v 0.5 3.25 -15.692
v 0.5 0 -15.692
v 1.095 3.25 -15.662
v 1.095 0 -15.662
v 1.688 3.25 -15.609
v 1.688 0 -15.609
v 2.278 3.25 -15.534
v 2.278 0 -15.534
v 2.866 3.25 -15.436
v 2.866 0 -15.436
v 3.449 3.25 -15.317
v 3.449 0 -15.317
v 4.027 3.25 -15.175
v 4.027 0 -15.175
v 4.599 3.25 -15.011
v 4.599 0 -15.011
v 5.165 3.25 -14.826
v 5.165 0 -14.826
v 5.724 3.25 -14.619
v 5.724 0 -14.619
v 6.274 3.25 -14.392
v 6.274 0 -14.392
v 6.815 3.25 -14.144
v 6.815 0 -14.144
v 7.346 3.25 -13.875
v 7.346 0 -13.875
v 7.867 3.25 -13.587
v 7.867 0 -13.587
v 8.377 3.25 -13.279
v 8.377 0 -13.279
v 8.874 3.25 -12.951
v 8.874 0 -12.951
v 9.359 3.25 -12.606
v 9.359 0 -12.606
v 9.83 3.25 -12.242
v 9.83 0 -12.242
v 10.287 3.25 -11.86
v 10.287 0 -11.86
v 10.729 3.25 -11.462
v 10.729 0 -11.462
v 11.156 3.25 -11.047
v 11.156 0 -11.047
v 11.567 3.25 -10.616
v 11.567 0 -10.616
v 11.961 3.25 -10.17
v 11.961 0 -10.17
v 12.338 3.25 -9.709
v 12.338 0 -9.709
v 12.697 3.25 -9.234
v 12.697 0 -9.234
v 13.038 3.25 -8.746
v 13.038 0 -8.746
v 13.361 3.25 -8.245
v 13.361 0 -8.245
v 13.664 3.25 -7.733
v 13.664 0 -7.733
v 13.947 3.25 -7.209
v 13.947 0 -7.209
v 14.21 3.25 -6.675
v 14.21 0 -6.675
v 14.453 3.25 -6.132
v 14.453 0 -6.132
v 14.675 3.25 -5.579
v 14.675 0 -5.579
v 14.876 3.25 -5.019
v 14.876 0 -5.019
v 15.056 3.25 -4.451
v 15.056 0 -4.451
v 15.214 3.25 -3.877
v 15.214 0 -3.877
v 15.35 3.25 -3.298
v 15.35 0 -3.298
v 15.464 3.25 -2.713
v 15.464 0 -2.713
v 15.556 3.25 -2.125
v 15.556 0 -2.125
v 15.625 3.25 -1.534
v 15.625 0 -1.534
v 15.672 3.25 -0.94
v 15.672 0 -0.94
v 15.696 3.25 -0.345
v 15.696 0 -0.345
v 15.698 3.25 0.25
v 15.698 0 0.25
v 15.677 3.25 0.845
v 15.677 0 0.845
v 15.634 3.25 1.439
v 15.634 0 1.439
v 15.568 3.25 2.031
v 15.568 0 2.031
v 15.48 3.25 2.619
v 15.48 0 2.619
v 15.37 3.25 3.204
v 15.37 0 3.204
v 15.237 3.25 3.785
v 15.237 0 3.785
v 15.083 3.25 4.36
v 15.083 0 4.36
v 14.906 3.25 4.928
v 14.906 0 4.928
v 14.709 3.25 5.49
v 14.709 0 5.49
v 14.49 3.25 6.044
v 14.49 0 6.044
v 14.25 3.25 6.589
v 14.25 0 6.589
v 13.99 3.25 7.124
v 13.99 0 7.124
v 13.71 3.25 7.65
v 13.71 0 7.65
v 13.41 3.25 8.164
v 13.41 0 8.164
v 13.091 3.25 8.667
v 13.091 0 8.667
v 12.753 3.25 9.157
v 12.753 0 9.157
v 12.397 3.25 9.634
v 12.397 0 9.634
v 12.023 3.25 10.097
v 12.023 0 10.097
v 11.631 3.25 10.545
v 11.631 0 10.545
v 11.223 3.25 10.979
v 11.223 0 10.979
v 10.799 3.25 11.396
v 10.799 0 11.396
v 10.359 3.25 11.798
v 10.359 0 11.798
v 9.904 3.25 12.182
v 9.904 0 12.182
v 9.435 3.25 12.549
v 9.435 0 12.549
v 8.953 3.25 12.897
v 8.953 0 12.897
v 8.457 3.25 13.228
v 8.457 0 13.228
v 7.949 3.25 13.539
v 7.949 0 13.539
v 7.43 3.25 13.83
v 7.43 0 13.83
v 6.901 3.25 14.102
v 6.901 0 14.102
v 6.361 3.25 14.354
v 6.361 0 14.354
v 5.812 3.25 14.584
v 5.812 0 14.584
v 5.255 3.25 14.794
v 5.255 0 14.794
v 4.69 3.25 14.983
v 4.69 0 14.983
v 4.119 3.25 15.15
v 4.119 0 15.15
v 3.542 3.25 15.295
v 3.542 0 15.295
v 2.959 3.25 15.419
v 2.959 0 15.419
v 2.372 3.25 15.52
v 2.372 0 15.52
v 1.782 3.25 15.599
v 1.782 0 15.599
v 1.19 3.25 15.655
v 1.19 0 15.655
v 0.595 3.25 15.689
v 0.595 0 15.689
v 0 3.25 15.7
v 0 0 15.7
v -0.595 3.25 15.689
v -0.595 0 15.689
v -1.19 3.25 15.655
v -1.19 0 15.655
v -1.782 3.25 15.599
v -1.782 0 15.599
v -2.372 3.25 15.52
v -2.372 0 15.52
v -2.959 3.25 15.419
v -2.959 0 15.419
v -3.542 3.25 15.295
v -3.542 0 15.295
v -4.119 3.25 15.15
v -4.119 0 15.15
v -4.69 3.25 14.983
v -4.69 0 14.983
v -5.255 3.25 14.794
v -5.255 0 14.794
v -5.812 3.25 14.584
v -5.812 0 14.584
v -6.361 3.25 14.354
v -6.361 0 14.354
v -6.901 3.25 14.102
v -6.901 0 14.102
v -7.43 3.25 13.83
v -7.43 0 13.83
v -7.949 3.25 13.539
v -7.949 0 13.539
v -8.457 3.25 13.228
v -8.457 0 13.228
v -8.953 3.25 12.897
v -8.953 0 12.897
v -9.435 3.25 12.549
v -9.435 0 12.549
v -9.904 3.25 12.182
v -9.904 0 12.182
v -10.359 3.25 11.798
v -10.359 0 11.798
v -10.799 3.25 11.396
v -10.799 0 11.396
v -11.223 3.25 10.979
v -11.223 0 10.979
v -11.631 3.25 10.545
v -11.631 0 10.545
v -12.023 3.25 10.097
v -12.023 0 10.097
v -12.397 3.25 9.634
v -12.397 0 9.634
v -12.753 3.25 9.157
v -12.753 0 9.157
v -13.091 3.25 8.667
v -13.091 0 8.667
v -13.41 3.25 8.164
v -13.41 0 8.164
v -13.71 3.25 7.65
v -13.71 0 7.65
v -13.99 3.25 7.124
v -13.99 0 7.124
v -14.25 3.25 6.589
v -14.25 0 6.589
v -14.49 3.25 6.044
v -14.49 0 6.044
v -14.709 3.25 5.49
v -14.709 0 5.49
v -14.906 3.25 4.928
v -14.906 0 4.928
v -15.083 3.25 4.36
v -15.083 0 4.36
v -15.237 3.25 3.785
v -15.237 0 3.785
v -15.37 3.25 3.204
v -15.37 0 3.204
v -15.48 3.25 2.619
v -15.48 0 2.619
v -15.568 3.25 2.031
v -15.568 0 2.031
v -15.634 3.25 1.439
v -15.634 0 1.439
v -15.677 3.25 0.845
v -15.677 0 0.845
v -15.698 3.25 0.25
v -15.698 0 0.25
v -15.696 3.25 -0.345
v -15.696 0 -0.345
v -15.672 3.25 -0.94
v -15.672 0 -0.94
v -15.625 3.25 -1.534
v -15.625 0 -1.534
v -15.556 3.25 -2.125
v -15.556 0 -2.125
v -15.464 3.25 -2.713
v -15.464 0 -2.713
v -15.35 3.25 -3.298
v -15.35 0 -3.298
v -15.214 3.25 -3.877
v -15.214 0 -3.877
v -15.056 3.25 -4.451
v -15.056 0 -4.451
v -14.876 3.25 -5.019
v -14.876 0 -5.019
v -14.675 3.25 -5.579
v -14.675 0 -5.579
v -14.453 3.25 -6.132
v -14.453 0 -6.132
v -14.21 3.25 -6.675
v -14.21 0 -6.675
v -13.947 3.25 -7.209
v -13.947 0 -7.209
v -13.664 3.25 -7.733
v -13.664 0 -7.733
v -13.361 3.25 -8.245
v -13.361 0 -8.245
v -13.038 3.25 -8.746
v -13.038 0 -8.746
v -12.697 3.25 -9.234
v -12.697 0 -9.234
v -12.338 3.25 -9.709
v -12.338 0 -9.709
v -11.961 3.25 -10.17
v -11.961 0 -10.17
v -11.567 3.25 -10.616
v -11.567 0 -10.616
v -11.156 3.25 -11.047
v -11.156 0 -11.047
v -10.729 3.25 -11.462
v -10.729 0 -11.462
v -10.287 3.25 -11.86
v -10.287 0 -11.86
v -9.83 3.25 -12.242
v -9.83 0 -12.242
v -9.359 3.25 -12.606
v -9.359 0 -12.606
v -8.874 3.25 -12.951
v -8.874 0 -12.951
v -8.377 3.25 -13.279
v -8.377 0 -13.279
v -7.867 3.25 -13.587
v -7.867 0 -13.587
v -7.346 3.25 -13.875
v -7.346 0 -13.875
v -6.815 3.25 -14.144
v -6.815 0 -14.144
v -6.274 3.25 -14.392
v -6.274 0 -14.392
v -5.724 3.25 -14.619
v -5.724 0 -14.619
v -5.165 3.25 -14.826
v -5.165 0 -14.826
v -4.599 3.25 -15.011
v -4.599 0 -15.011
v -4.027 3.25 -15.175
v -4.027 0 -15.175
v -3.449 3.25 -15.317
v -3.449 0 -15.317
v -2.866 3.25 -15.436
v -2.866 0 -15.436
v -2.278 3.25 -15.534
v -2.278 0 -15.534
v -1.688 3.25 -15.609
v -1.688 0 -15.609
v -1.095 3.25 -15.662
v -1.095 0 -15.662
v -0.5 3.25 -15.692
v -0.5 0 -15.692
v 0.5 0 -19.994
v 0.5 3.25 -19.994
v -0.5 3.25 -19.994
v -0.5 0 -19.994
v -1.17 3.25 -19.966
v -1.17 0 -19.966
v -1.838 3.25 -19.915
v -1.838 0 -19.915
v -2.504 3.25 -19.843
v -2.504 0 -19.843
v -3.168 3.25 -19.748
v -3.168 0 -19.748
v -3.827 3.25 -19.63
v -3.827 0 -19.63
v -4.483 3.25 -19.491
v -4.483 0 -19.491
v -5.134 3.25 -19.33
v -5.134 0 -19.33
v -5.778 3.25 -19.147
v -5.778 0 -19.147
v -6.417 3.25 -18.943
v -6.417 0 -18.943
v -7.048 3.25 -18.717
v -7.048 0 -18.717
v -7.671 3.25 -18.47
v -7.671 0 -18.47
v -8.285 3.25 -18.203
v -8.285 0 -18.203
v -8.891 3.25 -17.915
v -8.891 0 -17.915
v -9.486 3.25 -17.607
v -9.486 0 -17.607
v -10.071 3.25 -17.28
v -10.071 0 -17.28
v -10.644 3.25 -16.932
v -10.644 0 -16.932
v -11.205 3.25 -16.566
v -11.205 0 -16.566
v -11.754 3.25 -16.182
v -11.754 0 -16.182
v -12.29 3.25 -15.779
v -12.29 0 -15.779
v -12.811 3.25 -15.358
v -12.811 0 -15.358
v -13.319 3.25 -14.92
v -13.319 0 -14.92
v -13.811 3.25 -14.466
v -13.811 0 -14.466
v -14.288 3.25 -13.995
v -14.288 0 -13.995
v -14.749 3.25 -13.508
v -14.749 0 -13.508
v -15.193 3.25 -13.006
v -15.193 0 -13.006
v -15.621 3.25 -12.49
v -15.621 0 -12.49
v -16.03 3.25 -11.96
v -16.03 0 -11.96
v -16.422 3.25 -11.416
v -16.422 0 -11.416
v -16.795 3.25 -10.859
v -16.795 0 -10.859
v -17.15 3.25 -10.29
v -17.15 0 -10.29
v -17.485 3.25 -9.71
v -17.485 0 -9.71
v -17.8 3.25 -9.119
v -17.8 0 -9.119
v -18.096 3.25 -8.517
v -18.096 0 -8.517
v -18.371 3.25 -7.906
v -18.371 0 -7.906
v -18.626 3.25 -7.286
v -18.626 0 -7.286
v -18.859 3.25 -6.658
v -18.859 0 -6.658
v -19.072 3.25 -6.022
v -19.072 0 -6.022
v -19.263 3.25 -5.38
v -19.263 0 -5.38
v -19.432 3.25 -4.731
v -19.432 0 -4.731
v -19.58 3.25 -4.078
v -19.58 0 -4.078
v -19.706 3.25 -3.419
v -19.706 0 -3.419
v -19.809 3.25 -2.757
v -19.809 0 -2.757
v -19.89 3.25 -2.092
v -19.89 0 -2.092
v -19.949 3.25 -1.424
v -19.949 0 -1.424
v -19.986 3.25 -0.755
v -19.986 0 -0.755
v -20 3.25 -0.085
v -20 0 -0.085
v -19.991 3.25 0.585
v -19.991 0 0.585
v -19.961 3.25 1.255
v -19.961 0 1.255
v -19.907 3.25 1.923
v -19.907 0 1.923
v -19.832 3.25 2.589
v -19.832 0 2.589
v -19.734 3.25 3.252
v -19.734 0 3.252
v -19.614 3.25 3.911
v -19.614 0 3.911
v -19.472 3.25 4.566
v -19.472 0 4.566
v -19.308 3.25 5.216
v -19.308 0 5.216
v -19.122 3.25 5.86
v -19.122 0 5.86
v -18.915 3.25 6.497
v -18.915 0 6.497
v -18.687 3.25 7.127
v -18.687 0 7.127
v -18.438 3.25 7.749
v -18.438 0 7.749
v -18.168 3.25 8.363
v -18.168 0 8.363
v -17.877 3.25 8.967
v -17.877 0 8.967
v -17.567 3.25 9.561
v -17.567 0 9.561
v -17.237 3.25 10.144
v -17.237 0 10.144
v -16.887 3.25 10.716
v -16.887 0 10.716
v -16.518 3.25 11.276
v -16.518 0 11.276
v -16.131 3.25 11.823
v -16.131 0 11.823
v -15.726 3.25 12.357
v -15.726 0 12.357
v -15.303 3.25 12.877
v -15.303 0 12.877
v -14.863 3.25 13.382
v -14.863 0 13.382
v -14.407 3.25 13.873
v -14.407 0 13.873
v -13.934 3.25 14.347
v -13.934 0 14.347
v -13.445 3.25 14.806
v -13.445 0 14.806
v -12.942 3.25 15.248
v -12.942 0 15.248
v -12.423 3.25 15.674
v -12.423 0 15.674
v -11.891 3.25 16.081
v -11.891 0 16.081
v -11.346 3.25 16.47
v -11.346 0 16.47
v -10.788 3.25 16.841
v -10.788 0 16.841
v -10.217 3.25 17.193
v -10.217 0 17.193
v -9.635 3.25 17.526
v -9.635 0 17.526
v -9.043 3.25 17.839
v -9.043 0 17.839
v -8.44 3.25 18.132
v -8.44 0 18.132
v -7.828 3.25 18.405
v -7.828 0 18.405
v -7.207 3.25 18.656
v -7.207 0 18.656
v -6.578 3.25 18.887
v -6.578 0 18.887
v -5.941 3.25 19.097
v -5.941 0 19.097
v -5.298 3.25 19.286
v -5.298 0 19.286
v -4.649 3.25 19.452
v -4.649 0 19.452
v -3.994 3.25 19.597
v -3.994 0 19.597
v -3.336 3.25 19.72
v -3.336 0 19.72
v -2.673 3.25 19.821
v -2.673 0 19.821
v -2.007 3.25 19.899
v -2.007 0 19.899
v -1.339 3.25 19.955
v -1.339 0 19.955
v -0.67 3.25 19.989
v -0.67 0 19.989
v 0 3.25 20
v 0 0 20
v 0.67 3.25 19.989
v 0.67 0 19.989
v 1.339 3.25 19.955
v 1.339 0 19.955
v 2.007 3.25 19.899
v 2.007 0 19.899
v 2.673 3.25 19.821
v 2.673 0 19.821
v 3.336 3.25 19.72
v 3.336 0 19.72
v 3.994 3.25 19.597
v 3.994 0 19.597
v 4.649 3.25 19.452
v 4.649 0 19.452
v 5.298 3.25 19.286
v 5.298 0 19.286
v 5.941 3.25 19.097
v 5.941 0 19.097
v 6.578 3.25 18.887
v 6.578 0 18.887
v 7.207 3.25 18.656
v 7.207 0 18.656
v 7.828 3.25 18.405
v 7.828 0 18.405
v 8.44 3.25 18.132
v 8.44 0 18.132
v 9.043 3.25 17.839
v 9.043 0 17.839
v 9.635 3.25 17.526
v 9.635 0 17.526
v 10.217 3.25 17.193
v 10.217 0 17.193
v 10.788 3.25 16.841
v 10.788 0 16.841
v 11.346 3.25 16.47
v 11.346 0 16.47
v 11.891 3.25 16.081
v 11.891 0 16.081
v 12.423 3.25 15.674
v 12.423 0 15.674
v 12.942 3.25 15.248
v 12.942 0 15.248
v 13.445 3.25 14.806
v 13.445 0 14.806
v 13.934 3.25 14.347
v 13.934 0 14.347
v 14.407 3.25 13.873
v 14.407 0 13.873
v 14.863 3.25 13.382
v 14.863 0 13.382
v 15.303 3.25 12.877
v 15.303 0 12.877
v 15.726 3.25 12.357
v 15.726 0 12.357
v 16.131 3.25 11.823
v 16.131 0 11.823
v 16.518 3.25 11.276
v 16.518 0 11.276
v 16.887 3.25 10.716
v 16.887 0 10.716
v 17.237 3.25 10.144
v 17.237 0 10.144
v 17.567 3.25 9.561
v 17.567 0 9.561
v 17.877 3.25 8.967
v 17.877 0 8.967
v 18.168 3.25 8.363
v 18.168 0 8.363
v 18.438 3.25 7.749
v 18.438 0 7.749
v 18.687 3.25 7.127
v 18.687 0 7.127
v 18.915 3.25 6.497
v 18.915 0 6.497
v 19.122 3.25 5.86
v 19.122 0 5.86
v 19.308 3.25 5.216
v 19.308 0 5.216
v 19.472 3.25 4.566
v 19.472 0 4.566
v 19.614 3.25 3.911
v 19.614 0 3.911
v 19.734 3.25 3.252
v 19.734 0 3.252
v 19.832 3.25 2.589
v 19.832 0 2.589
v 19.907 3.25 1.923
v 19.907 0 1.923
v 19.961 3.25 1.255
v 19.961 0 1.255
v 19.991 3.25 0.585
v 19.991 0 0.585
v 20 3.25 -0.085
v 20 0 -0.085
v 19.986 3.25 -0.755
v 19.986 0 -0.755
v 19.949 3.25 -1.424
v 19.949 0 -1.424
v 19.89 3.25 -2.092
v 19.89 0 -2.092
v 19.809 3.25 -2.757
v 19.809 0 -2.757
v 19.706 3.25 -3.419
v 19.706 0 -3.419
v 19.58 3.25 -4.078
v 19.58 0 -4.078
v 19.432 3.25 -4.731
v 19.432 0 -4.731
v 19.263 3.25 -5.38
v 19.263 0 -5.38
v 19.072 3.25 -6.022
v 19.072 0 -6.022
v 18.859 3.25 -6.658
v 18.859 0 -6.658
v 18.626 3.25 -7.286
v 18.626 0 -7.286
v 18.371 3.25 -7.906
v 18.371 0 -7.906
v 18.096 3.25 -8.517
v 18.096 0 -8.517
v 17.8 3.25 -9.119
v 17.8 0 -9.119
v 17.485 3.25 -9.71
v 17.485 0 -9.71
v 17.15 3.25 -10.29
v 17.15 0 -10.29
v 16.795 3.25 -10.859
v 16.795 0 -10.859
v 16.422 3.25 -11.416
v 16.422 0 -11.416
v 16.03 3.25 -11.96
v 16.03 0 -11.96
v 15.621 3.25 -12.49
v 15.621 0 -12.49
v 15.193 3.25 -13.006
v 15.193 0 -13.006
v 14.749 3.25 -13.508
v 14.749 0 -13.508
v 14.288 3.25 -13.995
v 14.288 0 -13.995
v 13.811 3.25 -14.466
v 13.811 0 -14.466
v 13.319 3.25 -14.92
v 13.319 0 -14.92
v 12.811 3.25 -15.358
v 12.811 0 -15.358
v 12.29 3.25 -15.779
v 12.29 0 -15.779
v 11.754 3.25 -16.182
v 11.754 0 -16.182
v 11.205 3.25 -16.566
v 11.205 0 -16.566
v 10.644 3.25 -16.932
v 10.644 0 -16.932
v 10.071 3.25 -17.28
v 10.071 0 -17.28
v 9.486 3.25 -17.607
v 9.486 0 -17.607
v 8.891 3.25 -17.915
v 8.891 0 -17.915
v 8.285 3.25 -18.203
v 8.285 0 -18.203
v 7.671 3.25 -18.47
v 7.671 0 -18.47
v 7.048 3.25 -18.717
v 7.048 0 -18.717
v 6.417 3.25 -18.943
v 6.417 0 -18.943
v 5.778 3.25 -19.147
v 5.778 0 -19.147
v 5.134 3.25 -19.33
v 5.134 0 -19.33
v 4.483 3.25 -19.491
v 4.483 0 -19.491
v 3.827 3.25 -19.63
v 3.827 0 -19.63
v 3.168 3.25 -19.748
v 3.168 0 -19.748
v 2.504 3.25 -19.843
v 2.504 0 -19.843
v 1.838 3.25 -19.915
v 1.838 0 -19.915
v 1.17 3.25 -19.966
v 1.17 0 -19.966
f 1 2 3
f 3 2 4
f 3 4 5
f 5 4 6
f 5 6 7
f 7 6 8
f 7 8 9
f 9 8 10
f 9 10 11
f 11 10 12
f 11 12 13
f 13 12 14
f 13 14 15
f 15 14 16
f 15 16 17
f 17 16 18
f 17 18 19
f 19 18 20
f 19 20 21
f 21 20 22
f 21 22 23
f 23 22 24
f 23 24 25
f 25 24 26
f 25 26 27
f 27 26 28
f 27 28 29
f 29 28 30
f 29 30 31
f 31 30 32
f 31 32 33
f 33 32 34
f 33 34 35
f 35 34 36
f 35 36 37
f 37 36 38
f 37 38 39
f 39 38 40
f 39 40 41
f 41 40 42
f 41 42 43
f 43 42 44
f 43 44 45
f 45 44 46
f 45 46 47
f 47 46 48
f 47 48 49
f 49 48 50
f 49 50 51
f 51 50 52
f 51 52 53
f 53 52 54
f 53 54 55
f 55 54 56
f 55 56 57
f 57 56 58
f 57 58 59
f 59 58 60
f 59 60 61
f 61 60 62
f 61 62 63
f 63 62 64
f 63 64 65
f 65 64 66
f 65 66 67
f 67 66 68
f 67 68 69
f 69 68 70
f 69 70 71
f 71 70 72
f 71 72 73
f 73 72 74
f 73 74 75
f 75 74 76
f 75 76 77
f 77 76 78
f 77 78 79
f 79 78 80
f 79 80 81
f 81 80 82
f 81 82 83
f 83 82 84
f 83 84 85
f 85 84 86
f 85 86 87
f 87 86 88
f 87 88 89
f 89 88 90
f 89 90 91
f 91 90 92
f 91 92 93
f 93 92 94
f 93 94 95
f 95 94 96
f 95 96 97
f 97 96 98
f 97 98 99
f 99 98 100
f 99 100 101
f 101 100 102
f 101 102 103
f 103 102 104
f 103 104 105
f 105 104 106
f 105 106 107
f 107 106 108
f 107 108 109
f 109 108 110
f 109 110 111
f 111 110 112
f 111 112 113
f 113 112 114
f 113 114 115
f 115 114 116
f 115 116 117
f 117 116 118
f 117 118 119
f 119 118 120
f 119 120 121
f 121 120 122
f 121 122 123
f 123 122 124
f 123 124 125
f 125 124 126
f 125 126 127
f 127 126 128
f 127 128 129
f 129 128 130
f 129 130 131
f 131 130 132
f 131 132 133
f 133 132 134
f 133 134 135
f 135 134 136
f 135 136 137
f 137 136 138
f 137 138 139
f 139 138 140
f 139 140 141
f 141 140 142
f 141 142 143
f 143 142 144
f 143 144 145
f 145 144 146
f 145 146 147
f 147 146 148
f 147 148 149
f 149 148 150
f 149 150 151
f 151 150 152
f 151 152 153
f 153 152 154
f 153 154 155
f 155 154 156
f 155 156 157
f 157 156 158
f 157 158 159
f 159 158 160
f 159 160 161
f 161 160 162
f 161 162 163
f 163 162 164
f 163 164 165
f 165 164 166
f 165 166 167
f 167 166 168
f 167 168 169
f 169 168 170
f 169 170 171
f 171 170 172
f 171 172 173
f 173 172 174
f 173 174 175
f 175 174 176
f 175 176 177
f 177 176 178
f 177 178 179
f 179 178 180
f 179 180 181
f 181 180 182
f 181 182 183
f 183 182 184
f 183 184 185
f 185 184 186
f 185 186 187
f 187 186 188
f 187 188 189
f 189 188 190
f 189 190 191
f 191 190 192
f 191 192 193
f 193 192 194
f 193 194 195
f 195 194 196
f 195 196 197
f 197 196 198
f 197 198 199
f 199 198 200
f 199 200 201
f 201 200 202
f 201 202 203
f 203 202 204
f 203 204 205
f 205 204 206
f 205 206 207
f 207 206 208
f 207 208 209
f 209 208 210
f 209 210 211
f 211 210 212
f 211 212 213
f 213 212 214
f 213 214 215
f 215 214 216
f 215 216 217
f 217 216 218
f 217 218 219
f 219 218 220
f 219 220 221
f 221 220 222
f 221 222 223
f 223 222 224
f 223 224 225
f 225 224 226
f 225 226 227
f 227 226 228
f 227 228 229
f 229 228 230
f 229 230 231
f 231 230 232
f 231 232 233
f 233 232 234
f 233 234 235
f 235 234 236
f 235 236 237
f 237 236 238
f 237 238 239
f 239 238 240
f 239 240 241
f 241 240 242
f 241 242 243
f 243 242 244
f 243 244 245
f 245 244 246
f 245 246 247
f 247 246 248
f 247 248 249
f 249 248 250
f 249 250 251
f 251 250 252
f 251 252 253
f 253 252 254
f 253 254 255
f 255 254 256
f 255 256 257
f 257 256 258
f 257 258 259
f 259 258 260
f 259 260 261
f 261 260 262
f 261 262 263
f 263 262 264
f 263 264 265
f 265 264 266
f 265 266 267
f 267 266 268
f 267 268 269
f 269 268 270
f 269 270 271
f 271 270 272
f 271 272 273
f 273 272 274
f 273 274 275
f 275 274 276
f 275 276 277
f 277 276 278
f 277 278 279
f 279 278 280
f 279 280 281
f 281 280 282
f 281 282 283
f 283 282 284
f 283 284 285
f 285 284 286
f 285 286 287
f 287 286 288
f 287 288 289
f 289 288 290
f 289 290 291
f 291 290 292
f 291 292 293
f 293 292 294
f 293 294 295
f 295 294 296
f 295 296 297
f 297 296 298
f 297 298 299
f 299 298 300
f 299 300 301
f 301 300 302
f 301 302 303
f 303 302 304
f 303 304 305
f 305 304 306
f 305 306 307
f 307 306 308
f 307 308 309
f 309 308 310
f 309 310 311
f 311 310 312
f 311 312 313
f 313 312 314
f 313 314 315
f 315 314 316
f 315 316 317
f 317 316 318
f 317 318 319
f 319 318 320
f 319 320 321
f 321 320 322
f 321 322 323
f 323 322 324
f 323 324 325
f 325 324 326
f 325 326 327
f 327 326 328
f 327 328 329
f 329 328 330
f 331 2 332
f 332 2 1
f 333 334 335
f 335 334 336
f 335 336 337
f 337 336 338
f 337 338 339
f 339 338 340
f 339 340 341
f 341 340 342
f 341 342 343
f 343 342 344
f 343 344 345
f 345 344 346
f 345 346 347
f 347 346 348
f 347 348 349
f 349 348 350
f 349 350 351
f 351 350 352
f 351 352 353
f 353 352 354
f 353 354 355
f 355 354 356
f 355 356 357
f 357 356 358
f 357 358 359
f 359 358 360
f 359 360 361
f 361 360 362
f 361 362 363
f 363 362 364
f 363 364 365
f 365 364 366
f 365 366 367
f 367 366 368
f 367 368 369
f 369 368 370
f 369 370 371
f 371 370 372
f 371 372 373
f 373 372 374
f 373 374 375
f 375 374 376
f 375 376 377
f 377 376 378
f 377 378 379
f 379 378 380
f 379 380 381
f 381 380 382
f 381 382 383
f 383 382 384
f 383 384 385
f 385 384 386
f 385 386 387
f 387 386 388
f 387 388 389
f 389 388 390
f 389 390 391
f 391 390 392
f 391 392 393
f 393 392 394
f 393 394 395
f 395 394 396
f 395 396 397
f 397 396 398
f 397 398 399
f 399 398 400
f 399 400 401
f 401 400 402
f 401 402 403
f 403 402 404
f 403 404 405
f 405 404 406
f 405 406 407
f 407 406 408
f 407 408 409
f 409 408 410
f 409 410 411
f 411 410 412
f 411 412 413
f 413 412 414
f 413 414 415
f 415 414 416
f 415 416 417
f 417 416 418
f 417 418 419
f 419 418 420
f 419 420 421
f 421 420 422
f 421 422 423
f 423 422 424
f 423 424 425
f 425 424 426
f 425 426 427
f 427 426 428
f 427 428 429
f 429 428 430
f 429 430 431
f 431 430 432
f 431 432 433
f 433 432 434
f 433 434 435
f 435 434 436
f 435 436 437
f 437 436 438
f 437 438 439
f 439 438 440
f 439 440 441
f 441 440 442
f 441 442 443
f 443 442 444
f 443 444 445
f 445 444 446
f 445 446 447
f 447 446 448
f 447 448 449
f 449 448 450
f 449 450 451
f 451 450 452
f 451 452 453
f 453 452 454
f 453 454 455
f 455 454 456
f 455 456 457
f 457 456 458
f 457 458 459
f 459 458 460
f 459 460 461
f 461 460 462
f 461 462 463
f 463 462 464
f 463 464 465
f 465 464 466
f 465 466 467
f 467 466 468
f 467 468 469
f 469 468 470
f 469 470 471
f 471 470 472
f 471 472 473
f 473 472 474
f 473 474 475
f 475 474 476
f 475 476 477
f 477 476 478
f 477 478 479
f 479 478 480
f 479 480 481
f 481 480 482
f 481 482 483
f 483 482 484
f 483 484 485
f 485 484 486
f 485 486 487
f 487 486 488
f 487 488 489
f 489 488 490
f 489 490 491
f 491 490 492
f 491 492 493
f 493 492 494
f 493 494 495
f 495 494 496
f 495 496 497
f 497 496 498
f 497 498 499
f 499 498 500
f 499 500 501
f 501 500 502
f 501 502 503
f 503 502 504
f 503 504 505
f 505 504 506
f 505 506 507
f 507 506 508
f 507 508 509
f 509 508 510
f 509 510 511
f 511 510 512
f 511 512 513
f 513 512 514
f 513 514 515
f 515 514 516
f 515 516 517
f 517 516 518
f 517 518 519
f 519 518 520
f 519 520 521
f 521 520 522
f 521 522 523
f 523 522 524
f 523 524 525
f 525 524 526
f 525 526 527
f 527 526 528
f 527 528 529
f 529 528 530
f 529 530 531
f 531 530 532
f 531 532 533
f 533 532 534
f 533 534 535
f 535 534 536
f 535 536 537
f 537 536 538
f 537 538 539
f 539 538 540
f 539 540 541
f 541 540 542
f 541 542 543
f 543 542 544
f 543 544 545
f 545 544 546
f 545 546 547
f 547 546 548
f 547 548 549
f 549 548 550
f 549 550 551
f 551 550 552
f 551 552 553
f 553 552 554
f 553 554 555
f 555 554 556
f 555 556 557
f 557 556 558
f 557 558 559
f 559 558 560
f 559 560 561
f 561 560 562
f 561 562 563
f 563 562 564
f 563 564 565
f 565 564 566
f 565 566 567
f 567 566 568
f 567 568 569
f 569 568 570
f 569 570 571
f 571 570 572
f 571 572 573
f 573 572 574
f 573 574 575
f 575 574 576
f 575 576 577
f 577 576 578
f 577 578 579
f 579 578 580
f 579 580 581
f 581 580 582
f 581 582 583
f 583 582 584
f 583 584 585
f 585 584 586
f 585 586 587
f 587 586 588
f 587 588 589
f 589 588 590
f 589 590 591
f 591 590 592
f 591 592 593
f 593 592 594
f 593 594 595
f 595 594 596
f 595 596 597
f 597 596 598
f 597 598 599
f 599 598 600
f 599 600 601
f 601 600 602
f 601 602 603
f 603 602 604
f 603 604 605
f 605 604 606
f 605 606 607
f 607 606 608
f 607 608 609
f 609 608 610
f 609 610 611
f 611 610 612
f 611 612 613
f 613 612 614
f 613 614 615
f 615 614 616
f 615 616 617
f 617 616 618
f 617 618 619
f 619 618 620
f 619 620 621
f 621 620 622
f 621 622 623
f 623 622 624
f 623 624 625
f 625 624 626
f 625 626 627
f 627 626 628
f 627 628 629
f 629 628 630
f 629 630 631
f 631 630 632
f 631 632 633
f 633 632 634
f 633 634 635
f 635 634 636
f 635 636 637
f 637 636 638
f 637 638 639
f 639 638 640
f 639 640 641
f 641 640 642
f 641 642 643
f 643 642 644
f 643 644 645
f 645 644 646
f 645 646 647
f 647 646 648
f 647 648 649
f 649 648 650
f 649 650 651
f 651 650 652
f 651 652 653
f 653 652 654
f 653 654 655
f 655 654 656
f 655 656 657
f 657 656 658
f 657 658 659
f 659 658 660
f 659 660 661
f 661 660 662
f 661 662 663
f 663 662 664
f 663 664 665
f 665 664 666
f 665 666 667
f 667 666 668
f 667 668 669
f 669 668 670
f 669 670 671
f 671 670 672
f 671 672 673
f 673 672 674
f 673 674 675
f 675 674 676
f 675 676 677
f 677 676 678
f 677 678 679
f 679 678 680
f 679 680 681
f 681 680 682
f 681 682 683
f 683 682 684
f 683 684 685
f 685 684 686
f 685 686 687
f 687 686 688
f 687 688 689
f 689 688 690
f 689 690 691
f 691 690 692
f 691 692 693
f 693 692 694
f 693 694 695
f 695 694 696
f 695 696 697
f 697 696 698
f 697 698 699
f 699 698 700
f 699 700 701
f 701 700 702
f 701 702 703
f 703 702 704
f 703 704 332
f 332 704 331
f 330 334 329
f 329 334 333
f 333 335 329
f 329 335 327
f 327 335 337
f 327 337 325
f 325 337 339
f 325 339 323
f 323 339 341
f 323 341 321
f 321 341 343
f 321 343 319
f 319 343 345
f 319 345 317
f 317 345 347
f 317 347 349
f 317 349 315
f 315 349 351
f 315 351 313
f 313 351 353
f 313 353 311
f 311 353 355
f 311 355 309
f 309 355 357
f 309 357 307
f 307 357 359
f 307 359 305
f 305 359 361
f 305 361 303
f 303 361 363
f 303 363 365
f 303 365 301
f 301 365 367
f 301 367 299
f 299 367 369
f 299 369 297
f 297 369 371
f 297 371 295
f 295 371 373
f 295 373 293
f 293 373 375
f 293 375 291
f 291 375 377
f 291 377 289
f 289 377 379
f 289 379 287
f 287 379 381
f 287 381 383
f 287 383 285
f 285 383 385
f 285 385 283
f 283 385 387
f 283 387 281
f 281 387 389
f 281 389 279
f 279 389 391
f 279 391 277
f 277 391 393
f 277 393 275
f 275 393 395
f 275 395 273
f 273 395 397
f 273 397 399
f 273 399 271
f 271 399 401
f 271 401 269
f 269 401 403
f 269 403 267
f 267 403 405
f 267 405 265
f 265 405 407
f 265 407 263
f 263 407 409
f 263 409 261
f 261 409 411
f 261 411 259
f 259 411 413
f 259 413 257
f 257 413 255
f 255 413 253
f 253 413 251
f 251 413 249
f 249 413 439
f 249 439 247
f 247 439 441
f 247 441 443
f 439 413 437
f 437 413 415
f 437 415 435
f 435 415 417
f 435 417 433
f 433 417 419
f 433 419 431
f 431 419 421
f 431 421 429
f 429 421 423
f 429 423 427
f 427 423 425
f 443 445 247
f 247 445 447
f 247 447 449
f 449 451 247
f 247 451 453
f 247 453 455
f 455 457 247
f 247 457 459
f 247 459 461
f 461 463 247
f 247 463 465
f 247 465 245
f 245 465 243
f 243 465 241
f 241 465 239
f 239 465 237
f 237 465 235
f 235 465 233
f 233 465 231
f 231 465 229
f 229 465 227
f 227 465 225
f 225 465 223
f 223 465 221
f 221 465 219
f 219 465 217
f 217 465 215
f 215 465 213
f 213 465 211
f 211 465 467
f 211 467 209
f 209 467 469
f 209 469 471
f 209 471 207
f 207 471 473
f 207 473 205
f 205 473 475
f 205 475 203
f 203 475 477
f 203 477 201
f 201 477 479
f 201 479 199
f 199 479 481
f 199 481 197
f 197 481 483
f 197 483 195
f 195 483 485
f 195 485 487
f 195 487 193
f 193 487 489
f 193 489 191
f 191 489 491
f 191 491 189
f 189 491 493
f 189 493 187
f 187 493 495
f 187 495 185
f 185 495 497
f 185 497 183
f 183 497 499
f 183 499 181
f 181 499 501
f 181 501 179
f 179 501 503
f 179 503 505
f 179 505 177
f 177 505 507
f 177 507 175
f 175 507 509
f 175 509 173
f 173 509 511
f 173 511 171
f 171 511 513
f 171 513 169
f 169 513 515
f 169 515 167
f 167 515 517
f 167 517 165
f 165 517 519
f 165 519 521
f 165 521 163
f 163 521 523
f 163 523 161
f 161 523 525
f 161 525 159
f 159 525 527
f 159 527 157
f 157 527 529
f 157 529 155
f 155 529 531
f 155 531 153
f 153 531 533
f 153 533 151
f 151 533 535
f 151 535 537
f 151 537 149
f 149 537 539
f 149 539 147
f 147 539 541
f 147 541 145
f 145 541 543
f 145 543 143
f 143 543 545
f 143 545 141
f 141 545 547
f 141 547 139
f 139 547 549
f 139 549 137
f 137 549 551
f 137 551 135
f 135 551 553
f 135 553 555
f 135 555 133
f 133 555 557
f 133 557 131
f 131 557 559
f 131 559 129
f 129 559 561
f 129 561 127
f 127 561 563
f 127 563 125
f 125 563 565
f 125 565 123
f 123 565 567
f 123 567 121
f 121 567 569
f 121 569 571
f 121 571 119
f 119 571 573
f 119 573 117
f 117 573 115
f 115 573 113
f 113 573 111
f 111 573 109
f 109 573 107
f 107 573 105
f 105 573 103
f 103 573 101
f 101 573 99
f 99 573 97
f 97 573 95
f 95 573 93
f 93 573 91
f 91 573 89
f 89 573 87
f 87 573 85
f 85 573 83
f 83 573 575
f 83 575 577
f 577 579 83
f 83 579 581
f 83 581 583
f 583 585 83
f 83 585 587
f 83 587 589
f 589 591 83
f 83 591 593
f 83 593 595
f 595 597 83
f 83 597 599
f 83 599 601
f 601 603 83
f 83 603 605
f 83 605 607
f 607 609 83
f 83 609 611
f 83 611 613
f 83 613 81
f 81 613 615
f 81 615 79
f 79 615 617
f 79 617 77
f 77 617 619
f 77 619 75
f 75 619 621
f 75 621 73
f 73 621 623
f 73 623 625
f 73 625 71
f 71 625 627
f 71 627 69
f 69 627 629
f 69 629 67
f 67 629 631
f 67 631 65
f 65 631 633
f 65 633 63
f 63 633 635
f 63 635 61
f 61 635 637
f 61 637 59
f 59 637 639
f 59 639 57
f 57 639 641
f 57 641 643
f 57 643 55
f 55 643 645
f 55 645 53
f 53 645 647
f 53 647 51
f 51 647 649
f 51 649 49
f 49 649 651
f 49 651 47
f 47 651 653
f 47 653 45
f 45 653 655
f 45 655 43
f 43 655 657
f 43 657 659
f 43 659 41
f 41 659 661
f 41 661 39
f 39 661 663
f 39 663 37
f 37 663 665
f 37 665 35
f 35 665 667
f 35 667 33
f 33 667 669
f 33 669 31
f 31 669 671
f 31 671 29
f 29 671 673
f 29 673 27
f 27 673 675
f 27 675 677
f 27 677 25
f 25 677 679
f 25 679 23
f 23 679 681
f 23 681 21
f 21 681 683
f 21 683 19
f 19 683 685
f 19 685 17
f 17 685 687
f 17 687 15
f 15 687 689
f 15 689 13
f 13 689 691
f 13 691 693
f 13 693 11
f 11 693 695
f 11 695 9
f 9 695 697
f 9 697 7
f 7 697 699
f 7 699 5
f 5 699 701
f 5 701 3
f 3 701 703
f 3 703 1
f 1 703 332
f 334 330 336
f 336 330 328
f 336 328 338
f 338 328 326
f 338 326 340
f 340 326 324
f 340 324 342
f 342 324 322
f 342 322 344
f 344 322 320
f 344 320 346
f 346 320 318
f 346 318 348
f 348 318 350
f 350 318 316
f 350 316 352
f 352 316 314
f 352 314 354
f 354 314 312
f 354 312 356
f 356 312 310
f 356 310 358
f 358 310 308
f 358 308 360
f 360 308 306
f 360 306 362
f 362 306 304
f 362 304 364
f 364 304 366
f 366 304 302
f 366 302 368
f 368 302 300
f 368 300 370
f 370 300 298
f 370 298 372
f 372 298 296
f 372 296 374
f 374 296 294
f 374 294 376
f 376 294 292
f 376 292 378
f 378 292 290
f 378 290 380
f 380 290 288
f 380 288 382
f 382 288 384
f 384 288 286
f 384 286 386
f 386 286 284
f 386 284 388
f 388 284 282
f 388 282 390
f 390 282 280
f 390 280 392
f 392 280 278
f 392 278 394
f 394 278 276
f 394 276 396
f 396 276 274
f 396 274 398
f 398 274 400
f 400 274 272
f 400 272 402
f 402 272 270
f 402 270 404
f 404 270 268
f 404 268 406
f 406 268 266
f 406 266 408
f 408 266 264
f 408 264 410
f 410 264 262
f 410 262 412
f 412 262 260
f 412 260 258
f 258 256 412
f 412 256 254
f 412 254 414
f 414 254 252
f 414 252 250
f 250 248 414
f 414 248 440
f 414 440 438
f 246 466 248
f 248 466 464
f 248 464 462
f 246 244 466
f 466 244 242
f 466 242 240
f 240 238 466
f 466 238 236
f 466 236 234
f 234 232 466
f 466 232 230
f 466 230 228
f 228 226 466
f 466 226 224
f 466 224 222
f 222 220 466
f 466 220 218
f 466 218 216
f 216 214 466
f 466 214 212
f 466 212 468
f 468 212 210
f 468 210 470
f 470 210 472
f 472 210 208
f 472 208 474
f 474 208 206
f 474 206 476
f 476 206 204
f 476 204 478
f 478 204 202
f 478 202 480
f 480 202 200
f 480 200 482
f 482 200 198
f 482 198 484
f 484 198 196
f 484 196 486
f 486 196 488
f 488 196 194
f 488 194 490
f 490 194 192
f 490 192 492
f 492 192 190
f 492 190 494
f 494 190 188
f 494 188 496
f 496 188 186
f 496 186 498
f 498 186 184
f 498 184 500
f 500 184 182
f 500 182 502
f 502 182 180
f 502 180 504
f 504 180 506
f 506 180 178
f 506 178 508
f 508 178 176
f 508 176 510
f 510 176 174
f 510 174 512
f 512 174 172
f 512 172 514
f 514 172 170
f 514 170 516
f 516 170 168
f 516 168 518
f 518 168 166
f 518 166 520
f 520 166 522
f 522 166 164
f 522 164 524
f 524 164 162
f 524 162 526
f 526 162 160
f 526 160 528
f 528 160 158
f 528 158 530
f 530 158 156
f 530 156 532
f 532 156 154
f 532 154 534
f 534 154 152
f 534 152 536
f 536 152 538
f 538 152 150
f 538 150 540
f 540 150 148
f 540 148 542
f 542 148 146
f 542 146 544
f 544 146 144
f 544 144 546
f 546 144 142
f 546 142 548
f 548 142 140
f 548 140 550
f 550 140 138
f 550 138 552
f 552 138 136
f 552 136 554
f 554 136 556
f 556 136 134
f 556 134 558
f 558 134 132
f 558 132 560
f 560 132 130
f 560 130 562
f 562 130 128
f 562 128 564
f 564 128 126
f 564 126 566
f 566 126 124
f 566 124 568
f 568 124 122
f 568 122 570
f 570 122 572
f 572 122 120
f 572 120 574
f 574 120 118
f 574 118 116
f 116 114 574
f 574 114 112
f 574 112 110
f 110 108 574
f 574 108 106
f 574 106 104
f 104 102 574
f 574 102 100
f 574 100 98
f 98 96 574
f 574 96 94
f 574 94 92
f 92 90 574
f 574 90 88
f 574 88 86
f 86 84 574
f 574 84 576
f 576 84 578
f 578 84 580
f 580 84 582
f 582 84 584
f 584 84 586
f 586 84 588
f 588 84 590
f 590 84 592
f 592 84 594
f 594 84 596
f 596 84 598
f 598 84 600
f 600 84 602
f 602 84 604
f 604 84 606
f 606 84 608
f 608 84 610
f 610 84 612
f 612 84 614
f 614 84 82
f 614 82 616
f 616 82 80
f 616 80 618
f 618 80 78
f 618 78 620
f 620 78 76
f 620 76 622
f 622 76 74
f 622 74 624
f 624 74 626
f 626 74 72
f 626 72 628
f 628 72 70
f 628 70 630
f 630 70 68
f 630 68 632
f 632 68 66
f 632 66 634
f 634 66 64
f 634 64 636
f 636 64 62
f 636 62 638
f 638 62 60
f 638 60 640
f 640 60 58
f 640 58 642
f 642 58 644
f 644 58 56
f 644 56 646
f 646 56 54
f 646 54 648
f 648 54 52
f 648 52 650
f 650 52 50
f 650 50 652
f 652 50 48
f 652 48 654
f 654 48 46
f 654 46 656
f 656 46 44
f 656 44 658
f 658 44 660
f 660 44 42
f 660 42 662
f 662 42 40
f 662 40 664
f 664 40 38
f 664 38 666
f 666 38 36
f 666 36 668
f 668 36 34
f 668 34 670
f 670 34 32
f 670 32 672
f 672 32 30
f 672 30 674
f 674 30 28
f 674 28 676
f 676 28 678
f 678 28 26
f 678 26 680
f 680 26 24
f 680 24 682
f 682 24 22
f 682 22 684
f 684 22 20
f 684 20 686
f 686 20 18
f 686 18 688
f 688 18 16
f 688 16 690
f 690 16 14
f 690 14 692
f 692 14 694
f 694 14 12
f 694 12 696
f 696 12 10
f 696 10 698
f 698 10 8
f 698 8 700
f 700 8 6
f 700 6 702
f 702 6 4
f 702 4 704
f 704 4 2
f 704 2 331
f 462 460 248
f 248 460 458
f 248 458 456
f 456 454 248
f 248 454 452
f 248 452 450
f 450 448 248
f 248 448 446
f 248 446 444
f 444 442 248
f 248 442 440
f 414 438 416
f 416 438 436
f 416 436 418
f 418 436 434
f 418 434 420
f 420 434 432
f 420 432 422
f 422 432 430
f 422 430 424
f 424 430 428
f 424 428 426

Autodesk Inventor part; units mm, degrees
ref_plane "YZ Plane" through (0, 0, 0) normal (1, 0, 0) x (0, 1, 0)
ref_plane "XZ Plane" through (0, 0, 0) normal (0, 1, 0) x (-1, 0, 0)
ref_plane "XY Plane" through (0, 0, 0) normal (0, 0, 1) x (1, 0, 0)
sketch "Sketch1" plane through (0, 0, 0) normal (0, 1, 0) x (-1, 0, 0)
  circle A0 centre (0, 0) radius 20
  circle A1 centre (0, 0) radius 15
  line L0 (-0.5, -14.9917) -> (-0.5, -19.9937)
  line L1 (0.5, -19.9937) -> (0.5, -14.9917)
  line L2 (0, -28) -> (0, 28) projected
  circle A2 centre (0, 0) radius 15.7
  point P0 (-0.5, -15.692)
  point P1 (0.5, -15.692)
  dimension "d0" = 40
  dimension "d1" = 5
  dimension "d2" = 1
  dimension "d5" = 4.3
extrude "Extrusion1" add sketch "Sketch1" along normal blind 3.25 contours L1 A2 L2 A0 | L2 A2 L0 A0 picked at (18.3995, 1.4835) picked at (-2.823, 18.227)
ref_plane "Work Plane1" through (0, 0, -14.9917) normal (1, 0, 0) x (0, 0, -1)
properties part number "Test_Radiator_Disc"
